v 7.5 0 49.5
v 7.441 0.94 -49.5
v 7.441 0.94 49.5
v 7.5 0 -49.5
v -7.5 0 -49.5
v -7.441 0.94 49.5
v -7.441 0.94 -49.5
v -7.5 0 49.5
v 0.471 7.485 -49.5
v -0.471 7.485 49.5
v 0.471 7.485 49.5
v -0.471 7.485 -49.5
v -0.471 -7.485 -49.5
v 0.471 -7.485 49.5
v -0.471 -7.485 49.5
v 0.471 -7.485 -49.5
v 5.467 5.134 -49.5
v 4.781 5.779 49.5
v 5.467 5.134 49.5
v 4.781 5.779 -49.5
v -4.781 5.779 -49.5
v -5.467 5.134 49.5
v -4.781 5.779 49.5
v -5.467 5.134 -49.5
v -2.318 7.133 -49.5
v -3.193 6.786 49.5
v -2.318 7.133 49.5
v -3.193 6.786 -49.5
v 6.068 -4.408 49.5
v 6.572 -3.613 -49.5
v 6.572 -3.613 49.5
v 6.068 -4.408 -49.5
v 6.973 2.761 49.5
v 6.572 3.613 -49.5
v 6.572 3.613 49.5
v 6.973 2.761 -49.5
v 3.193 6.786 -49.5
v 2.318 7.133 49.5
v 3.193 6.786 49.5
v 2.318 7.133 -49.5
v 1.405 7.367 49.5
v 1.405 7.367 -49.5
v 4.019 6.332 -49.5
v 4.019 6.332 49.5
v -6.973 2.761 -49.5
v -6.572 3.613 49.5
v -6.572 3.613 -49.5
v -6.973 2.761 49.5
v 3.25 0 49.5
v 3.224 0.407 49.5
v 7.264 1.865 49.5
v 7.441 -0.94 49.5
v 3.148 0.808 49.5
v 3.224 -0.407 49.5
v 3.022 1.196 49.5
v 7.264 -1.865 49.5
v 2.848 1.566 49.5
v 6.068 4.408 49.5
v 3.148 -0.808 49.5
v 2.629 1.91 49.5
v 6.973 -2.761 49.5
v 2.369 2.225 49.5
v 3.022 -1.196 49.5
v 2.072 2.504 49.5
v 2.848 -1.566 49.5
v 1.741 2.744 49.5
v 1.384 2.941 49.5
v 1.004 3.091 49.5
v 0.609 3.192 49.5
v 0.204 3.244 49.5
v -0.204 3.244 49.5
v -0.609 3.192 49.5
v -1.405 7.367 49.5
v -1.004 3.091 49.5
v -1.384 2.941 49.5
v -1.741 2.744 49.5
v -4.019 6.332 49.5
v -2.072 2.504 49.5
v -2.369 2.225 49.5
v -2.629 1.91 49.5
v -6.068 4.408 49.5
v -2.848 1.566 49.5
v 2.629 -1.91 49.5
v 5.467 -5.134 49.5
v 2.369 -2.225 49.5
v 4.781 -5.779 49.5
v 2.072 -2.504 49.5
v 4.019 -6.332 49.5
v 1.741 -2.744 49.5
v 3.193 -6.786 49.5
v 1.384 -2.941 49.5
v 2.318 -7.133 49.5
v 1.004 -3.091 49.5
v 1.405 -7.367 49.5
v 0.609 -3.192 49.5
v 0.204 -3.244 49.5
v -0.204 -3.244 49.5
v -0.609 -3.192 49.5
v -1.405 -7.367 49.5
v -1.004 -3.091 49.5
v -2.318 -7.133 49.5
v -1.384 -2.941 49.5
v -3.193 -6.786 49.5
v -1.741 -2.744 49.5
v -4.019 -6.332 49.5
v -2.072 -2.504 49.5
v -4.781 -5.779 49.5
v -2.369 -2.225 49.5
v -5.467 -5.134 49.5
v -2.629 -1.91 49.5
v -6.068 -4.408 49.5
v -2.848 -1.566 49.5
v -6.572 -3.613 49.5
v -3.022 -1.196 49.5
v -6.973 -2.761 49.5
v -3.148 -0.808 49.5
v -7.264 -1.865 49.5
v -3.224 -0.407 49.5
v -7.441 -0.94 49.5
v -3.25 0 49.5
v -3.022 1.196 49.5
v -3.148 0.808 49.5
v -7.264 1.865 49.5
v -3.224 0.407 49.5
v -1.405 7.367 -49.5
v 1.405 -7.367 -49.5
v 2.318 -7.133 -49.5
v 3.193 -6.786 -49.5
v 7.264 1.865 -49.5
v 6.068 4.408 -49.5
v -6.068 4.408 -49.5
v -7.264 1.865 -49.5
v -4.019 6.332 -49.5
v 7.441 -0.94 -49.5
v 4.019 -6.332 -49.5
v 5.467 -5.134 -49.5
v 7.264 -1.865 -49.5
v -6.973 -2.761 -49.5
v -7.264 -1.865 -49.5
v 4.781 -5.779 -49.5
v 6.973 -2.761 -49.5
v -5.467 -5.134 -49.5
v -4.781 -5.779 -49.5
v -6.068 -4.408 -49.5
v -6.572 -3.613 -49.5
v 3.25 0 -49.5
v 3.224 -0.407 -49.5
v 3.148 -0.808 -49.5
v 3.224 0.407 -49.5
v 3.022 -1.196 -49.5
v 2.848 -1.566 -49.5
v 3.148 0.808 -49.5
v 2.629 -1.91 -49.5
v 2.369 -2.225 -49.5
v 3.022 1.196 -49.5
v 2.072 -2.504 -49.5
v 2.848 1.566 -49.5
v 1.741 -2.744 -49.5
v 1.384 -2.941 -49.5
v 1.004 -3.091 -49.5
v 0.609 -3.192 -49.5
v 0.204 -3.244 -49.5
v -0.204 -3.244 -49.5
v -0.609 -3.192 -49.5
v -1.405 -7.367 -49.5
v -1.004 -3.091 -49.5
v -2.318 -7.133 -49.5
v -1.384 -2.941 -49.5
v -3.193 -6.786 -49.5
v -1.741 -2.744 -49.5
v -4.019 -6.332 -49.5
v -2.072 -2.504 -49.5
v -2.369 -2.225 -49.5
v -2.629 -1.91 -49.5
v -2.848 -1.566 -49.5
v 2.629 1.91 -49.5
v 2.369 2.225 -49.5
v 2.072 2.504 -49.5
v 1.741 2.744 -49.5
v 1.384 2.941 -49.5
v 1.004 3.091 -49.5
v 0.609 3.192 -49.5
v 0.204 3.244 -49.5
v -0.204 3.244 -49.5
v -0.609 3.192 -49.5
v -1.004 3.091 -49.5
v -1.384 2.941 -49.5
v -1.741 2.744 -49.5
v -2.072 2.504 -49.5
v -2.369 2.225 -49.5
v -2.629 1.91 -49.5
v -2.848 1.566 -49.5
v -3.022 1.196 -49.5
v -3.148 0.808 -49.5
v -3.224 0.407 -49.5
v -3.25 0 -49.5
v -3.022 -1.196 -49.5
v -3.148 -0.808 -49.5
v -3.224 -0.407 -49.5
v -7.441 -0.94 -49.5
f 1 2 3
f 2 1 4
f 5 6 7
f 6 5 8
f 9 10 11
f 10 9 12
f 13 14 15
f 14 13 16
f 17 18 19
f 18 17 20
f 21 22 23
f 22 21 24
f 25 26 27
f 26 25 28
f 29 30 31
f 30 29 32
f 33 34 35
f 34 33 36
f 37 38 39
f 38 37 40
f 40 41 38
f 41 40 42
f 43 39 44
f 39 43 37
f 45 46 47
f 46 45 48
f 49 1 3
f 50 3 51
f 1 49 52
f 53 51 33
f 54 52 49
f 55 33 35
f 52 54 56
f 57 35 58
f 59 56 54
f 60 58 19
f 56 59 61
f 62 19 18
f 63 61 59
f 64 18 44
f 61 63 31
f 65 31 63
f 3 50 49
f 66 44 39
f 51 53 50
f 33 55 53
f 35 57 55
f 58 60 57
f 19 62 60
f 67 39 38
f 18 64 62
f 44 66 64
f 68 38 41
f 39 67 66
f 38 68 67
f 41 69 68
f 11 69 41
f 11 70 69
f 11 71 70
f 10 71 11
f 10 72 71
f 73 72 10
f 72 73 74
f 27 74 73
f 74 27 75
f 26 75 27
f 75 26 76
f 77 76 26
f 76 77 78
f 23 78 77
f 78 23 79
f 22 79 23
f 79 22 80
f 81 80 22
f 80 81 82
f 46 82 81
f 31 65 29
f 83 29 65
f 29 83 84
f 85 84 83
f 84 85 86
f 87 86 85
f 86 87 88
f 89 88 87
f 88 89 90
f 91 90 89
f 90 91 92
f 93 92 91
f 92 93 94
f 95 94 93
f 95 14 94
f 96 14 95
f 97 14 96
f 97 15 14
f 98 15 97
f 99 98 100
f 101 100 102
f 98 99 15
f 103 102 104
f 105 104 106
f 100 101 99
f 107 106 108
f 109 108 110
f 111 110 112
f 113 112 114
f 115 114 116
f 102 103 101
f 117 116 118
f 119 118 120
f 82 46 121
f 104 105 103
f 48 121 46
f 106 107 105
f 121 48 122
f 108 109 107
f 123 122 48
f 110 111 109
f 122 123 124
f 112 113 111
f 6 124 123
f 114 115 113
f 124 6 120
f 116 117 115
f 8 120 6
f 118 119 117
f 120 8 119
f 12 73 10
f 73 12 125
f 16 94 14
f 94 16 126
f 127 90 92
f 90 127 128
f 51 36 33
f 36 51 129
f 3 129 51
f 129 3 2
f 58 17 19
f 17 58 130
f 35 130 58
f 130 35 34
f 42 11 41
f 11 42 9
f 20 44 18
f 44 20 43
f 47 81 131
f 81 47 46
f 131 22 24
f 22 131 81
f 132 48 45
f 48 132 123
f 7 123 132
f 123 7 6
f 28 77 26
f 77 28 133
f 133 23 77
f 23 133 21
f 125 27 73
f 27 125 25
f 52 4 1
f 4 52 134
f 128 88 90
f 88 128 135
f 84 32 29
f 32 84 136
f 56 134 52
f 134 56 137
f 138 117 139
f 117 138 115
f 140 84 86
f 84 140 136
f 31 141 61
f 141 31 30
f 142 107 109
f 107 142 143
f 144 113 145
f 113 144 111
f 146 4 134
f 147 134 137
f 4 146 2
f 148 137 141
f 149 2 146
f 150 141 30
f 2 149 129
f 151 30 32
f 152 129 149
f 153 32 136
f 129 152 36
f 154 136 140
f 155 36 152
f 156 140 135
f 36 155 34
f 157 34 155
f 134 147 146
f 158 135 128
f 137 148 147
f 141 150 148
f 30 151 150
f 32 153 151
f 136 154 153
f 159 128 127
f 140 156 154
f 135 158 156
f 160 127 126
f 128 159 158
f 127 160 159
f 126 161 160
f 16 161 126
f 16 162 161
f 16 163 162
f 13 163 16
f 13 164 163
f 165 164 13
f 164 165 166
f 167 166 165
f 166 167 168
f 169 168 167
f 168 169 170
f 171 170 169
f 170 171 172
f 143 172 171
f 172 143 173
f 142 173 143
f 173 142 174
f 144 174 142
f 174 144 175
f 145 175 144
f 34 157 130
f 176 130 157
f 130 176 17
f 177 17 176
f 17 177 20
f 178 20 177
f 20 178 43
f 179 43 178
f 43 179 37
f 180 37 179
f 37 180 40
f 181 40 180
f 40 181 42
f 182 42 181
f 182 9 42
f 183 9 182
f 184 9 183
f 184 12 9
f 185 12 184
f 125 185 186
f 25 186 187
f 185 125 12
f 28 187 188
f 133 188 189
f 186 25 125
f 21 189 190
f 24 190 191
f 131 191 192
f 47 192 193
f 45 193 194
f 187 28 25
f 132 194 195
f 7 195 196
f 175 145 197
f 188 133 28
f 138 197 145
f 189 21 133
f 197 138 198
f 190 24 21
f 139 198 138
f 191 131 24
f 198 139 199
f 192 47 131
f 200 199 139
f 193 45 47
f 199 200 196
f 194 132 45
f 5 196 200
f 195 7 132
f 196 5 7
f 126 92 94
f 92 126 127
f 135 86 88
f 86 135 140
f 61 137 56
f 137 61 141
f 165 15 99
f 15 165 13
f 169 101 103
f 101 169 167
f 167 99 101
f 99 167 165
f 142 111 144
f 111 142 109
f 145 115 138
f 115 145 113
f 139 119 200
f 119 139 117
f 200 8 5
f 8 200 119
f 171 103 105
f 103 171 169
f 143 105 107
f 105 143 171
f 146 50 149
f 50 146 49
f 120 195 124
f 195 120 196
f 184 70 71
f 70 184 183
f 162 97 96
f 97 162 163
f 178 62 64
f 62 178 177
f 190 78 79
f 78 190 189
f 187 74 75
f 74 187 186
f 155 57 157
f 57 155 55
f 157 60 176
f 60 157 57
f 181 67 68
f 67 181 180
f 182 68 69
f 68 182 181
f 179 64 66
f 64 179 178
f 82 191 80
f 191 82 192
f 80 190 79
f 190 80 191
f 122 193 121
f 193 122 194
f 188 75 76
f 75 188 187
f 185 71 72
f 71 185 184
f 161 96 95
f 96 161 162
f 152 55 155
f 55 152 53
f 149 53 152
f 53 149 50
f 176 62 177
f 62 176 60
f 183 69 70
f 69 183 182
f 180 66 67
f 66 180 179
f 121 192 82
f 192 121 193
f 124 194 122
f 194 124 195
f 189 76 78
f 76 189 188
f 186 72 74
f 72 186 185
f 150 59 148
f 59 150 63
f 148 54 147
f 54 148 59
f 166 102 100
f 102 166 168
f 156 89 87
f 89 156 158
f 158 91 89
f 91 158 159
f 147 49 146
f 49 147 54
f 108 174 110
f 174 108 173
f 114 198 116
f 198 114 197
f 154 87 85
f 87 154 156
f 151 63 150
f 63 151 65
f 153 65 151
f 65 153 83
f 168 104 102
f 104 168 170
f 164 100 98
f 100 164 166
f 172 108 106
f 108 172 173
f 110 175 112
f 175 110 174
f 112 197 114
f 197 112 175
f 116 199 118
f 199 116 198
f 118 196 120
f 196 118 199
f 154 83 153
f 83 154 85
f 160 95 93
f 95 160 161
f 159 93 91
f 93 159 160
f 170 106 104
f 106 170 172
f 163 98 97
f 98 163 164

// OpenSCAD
$fn = 50;


difference() {
	union() {
		translate(v = [0, 0, -49.5000000000]) {
			cylinder(h = 99, r = 7.5000000000);
		}
	}
	union() {
		translate(v = [0, 0, -100.0000000000]) {
			cylinder(h = 200, r = 3.2500000000);
		}
	}
}
